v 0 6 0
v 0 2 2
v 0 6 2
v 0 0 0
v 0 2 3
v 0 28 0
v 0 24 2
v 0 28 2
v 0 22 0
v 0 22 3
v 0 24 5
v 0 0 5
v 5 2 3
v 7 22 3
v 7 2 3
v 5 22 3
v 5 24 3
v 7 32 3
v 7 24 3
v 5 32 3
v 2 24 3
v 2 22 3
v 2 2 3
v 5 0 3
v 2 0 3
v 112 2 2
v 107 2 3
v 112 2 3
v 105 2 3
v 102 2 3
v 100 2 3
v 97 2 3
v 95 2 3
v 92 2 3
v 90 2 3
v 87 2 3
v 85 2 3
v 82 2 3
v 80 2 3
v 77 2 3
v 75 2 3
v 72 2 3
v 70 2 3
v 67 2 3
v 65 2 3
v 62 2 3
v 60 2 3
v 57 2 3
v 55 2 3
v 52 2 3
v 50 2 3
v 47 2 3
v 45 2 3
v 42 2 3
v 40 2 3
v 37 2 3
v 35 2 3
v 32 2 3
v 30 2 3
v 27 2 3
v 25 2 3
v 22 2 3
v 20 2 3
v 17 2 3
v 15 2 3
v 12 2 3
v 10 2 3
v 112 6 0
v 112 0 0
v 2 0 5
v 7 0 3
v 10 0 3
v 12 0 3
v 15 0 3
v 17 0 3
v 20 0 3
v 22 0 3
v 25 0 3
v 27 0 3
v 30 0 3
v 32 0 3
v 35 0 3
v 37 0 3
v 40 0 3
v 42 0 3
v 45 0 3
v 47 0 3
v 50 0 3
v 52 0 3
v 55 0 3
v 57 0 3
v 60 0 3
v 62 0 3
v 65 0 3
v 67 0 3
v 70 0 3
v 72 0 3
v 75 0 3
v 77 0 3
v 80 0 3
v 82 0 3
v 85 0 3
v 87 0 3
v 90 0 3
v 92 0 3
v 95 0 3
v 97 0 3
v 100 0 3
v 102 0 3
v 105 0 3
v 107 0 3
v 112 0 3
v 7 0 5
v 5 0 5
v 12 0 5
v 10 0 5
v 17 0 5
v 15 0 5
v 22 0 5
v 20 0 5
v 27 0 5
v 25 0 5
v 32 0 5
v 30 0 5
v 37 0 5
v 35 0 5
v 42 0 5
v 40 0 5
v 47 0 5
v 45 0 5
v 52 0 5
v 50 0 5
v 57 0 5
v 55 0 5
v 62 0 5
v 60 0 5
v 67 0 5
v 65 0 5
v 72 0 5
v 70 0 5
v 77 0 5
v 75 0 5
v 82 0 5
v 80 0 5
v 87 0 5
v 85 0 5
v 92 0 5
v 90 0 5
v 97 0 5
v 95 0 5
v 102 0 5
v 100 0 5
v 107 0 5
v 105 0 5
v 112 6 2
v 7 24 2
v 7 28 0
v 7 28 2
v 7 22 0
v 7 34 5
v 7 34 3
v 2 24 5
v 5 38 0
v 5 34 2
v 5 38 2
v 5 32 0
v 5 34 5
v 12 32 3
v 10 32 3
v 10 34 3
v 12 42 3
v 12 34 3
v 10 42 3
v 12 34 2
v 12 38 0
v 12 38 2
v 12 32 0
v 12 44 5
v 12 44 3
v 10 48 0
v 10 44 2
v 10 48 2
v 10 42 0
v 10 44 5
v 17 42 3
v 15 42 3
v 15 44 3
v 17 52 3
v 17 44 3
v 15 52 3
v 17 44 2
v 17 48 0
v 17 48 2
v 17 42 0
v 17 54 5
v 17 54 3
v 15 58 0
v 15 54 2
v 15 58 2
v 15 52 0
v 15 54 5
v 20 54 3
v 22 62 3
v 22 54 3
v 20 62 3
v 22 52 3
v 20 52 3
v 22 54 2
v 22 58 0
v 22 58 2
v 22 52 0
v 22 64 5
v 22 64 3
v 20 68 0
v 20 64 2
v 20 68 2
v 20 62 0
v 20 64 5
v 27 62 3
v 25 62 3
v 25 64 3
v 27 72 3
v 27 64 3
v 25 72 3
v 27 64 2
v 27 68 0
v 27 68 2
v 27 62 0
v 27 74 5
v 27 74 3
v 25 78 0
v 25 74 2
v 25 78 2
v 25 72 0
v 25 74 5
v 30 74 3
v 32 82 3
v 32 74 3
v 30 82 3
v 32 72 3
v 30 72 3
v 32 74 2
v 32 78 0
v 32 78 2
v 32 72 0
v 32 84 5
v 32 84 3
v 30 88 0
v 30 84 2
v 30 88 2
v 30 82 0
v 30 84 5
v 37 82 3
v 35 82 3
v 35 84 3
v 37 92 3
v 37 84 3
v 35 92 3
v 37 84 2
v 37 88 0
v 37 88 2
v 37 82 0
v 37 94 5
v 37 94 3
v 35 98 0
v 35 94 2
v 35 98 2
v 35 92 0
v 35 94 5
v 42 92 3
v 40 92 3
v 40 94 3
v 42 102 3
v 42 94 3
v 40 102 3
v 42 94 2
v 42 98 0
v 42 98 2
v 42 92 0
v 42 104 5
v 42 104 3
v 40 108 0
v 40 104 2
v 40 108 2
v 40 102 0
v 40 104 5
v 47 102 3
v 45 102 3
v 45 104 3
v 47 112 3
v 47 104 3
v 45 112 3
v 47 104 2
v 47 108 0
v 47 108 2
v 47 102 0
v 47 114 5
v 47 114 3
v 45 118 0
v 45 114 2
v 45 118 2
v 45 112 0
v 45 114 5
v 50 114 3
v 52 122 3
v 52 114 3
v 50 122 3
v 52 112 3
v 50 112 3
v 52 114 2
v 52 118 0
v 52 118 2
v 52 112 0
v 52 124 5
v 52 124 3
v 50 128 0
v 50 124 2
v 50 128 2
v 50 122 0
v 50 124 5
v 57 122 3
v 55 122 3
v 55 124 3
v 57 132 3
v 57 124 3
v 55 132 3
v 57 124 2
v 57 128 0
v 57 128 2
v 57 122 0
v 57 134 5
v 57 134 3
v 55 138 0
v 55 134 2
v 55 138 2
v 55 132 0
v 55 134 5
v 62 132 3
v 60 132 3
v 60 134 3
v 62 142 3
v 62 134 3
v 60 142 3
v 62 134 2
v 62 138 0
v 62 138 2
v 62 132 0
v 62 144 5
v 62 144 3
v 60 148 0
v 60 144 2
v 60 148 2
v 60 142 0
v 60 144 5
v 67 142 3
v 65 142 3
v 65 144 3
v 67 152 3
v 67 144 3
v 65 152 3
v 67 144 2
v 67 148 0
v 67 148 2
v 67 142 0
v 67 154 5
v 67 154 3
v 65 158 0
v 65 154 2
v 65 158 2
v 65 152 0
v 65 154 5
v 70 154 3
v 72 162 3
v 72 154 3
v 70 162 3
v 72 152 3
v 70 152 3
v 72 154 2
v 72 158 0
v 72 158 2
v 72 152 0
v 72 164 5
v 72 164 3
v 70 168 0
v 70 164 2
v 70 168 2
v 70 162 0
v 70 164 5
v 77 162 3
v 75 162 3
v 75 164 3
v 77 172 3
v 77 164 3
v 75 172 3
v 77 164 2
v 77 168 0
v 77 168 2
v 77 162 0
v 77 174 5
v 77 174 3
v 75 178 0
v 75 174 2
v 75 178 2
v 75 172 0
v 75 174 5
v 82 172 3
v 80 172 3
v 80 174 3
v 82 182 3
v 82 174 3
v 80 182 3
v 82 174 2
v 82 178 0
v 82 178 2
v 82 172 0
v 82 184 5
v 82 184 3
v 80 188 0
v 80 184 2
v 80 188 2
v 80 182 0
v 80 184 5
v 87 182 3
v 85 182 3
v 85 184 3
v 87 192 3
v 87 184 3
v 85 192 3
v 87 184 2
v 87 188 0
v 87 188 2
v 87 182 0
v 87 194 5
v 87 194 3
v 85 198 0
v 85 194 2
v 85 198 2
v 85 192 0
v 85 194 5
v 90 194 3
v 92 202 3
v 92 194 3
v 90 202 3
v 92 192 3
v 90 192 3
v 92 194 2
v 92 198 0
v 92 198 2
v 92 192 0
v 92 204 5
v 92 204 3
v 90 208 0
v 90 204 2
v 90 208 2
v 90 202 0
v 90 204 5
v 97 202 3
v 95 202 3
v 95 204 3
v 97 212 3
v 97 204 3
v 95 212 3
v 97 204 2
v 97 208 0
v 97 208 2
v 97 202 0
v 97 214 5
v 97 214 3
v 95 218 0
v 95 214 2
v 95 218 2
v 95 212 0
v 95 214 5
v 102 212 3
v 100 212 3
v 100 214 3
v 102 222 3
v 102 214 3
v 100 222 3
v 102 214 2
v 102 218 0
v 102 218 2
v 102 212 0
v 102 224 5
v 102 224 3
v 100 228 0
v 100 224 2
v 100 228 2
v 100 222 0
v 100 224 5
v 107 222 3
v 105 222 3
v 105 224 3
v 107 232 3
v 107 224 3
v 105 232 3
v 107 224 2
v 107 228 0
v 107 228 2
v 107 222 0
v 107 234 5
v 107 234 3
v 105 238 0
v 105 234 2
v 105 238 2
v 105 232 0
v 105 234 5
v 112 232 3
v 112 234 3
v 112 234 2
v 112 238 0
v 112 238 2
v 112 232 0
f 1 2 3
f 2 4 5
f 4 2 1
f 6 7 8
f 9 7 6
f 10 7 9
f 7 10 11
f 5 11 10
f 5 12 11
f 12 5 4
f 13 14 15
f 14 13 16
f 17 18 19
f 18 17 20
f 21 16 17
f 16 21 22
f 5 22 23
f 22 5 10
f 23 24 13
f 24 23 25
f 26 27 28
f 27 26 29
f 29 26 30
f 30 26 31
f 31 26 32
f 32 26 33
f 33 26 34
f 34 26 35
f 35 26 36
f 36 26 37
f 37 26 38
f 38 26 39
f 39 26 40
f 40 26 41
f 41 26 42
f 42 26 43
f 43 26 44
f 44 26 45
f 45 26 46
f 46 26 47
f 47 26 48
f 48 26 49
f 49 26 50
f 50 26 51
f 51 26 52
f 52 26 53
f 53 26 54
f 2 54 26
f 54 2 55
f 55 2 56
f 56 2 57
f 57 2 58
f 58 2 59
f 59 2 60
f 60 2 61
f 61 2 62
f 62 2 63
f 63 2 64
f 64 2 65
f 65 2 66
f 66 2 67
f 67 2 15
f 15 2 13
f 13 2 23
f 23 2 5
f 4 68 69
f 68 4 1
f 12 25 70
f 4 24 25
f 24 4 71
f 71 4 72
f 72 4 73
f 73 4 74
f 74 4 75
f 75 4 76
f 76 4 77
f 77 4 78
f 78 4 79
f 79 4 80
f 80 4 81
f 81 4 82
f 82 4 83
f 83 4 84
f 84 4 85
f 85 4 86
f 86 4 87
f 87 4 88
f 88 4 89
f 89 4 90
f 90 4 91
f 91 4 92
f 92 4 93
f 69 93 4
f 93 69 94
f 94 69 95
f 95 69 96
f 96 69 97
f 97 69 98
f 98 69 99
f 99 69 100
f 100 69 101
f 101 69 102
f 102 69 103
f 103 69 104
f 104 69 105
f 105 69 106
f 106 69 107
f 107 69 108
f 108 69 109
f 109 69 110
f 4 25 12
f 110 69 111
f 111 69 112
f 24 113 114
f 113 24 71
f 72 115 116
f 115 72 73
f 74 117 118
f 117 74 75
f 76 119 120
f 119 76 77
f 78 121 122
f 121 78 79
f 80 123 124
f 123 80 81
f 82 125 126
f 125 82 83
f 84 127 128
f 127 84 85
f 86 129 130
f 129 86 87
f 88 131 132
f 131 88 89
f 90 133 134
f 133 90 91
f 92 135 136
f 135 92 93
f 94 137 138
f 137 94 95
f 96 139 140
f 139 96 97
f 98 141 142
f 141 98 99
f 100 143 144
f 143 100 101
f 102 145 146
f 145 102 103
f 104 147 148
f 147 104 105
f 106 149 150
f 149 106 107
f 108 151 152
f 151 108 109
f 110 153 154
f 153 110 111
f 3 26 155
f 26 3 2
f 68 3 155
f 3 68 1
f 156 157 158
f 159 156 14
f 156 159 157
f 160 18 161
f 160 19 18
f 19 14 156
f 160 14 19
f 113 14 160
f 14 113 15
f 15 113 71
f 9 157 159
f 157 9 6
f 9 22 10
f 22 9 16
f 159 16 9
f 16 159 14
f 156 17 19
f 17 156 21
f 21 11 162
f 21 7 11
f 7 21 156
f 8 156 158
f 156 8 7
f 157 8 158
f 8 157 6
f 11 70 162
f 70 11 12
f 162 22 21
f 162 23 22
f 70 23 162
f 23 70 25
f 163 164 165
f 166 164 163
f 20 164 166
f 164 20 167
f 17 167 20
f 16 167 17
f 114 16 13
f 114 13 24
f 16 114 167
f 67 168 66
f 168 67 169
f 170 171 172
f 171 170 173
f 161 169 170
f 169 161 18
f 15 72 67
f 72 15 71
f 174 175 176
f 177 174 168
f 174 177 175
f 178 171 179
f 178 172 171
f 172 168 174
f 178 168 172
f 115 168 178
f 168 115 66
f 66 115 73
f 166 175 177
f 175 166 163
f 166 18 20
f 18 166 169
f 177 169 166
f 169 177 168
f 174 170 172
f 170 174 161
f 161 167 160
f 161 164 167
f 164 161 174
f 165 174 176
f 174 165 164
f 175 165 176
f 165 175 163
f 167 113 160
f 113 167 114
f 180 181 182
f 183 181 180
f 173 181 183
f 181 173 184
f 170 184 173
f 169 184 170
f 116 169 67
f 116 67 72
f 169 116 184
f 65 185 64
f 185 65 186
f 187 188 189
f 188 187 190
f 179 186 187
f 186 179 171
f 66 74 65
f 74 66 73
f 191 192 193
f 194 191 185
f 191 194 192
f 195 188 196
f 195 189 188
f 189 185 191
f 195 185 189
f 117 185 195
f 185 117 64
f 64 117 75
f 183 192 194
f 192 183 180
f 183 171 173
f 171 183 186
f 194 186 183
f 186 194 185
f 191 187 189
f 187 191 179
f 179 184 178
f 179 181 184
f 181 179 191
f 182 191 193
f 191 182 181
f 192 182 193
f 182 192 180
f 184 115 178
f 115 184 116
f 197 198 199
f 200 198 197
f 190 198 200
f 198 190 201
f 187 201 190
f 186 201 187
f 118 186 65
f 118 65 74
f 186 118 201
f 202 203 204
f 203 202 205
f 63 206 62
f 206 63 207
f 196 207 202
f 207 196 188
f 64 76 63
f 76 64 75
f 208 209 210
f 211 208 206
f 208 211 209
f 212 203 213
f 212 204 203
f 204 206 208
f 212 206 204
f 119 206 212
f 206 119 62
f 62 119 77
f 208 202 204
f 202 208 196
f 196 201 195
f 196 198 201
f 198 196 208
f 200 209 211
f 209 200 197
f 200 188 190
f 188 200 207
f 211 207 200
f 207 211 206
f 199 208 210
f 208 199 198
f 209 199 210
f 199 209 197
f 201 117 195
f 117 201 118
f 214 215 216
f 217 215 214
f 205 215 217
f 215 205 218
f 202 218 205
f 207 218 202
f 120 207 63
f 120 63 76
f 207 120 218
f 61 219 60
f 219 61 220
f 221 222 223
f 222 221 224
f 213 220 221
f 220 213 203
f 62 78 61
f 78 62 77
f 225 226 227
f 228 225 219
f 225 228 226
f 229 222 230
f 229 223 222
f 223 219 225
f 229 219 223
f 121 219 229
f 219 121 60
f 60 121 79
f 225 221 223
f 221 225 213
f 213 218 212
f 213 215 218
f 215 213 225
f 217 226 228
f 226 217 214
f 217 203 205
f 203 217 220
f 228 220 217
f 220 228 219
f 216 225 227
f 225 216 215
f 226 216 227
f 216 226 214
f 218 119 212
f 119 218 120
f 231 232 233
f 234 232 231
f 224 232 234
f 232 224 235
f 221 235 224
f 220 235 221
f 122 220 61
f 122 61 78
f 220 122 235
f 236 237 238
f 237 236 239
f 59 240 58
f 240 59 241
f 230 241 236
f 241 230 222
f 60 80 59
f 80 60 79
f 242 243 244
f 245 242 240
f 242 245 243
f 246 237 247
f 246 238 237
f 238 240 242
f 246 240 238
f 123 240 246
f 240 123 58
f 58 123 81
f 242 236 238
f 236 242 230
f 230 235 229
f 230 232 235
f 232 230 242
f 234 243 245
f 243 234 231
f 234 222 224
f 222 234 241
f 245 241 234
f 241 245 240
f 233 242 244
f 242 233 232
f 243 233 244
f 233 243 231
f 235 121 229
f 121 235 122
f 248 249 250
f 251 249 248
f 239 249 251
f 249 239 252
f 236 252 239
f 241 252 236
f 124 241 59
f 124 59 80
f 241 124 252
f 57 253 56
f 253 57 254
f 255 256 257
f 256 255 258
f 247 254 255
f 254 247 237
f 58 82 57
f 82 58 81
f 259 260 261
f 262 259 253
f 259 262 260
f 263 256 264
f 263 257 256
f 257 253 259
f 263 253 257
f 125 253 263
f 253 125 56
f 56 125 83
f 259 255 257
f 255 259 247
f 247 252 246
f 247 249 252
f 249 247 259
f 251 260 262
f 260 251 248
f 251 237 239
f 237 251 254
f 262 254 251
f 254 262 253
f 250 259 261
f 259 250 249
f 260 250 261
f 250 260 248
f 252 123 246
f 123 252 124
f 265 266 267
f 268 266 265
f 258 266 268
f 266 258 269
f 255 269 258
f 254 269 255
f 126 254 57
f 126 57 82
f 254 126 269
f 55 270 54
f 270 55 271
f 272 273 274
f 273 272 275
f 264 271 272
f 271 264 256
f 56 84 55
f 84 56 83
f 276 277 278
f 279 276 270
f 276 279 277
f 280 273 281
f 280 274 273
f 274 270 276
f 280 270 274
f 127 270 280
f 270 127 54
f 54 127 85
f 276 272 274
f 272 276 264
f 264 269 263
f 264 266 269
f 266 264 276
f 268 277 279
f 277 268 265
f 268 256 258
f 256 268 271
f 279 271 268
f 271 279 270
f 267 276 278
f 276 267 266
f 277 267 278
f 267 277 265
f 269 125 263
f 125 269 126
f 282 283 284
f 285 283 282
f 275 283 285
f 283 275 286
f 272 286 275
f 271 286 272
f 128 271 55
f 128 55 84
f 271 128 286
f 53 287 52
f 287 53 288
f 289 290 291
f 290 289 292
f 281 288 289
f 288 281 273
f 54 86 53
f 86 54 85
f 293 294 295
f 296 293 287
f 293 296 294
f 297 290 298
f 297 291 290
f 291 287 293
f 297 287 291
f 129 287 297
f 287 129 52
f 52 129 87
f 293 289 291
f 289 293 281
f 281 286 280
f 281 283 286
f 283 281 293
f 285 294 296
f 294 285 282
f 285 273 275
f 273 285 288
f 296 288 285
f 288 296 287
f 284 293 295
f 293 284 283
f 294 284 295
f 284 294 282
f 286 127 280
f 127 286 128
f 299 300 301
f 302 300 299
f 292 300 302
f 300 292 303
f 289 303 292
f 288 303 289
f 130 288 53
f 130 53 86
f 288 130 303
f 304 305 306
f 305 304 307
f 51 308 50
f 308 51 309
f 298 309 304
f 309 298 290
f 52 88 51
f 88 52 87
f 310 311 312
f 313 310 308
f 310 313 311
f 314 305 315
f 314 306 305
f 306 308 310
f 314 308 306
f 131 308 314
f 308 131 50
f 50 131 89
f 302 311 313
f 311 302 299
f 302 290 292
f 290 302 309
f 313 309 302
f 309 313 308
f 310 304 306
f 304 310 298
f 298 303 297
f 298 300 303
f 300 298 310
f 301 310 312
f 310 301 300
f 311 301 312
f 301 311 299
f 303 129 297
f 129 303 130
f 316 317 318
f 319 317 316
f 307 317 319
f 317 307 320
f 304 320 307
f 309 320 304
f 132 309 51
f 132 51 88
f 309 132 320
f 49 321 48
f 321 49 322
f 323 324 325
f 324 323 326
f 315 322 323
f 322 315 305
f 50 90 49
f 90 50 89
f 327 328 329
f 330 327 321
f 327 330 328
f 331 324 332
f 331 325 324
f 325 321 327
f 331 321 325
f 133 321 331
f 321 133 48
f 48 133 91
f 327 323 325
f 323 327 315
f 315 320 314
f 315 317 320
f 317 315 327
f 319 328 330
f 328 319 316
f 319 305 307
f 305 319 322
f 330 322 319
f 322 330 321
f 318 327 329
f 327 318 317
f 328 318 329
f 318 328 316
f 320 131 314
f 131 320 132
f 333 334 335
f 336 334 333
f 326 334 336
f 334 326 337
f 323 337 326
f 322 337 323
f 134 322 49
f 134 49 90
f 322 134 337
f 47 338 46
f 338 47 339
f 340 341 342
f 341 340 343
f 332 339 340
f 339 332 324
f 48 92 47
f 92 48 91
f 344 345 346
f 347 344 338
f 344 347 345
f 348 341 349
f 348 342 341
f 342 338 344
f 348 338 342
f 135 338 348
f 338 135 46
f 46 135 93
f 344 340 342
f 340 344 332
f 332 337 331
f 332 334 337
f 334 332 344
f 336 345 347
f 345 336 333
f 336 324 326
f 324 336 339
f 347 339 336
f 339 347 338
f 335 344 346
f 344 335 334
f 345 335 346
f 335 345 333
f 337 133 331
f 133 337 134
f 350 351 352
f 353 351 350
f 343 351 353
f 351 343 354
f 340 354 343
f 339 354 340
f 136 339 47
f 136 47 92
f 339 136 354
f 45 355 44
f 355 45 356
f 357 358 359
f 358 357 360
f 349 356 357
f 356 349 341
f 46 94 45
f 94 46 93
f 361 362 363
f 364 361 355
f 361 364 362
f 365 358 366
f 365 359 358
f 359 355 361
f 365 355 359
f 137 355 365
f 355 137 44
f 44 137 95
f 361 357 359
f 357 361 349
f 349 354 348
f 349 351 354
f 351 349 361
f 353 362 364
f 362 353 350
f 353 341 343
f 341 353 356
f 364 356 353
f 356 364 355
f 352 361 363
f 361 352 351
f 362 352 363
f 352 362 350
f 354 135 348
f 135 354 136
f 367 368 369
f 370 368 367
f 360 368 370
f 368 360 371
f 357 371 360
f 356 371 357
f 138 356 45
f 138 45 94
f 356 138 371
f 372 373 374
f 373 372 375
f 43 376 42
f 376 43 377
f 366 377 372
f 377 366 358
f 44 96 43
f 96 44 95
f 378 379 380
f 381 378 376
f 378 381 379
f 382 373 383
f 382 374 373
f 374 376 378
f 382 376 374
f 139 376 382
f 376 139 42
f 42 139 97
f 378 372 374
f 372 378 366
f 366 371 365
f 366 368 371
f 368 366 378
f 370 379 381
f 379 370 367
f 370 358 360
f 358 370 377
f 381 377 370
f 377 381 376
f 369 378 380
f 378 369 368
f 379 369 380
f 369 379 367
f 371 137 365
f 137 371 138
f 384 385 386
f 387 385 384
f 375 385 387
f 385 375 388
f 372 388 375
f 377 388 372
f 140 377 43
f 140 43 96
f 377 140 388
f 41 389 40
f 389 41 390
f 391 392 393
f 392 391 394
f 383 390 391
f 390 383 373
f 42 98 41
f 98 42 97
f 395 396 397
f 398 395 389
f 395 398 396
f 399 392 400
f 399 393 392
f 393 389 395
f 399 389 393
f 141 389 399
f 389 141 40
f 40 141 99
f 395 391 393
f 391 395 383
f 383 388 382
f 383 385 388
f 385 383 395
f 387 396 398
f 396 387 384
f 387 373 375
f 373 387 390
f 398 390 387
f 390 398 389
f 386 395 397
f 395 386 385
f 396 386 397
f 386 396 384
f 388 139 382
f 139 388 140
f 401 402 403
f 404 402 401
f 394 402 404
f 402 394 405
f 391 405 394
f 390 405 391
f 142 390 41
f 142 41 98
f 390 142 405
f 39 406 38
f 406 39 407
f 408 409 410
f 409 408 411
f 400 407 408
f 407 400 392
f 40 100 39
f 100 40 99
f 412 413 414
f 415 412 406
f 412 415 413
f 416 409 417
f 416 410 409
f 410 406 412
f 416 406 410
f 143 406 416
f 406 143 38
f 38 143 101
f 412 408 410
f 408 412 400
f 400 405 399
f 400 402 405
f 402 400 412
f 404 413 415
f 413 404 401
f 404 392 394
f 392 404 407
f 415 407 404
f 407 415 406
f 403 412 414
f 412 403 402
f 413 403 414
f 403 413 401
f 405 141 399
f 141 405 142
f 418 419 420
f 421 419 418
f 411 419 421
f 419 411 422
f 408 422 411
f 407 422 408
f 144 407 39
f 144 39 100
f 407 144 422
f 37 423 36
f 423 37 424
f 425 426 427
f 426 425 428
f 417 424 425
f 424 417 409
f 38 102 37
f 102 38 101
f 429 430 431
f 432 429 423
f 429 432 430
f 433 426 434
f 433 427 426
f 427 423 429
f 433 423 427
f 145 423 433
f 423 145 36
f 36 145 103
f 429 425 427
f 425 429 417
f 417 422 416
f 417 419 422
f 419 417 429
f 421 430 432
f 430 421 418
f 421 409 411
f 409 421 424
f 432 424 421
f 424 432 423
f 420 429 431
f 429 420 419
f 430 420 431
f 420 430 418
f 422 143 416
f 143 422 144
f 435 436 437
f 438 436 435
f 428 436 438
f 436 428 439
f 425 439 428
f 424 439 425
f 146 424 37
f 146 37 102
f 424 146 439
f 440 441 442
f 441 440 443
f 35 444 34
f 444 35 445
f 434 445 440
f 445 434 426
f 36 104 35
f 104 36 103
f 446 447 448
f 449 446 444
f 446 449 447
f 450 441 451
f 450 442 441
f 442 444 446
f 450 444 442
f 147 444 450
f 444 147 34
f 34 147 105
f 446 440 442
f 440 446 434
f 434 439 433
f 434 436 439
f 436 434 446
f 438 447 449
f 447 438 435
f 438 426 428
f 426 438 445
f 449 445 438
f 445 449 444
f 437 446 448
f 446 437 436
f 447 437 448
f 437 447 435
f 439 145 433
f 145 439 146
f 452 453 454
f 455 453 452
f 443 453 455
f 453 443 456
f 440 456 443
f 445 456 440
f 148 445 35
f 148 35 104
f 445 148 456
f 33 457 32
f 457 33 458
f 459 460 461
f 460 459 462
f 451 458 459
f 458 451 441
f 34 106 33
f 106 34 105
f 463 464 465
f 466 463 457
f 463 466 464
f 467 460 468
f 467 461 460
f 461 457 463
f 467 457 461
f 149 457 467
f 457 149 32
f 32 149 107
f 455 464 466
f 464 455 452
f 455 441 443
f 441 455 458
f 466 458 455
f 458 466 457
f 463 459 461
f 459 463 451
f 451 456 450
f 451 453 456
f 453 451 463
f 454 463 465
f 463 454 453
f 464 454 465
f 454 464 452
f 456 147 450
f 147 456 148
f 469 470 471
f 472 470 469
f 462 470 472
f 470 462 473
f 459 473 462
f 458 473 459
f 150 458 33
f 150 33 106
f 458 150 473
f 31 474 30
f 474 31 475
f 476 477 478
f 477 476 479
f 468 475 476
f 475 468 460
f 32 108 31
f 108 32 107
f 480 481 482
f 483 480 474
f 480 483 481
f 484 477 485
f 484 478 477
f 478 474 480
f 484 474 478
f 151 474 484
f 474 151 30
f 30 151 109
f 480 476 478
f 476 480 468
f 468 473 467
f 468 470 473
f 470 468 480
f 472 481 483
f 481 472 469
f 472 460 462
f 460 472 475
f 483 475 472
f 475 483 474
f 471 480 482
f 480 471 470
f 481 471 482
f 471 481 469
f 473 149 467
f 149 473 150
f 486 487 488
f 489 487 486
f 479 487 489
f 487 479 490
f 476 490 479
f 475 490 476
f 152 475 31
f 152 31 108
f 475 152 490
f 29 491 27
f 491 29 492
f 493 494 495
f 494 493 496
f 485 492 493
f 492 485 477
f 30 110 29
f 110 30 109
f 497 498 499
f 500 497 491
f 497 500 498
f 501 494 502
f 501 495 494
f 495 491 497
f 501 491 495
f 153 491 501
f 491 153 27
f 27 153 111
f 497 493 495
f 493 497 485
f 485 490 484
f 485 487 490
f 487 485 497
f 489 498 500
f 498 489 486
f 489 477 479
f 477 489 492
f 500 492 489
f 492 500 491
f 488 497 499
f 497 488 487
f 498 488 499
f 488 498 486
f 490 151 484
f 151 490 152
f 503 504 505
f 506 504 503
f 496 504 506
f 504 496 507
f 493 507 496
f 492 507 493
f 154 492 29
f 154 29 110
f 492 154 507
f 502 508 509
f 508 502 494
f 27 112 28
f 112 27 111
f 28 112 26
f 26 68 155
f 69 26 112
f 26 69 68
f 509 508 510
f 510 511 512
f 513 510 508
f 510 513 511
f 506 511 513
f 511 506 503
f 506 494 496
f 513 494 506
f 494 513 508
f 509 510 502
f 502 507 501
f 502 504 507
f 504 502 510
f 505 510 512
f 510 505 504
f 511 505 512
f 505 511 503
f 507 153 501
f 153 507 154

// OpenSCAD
/* Brief */
// Test of the maximal length of unsupported bridge
// result longest bridge.
/* Config */
// volba pohladu
preview="plate";    // [plate]
// hrubka stlpikov a mosta
tick=2;             // [0.5:0.1:4]
// skok-Y testu dlzky mosta
steplen=10;         // [1:1:30]
// skok-X odstupu dvoch mostov vedla seba
steppos=5;
// minimalna dlzka mosta
minlen=20;          // [20:5:100]
// pocet mostov
steps=21;           // [1:1:21]
/* Colors */
colorBridge="#a0a0a0";

module unsupportedBridge(length=20,tick=2) {
    // FAILED ... tento pred koncom zhodi posledny/posledne dva stlpiky a nastane bodel.
    // FAILED ... stlpiky mozu byt vysoke 1/3 povodnej vysky ... cize 3-4mm.
    // FAILED ... stlpiky by mali mat nejaku oporu na spodku
    // length - the length of unsupported bridge
    // tick   - tickness of bridge
    hight = 3; //vyska stlpika
    holder= 4; //sirka opory
    color(colorBridge) union() {
        translate([0,0,0])              // predny stlpik -vychodzi - staticky
            cube([steppos+tick,tick,hight]);
        translate([0,0,0])              // opora predneho stlpika
            cube([steppos+tick,tick+holder,tick]);
        translate([0,tick+length,0])    // zadny stlpik -cielovy - dynamicky
            cube([steppos+tick,tick,hight]);
        translate([0,tick+length,0])    // opora zadneho stlpika
            cube([steppos+tick,tick+holder,tick]);
        translate([0,0,hight])          // bridge - spojnica oboch stlpikov - so svetlou dlzkou = length
            cube([tick,tick+length+tick,tick]);
        echo(str("length=",length));
    }
}

/* Preview */
if(preview=="plate") {
    for(i=[0:1:steps]) {
        translate([i*steppos,0,0])
        unsupportedBridge(minlen+i*steplen,tick);
    }
}
